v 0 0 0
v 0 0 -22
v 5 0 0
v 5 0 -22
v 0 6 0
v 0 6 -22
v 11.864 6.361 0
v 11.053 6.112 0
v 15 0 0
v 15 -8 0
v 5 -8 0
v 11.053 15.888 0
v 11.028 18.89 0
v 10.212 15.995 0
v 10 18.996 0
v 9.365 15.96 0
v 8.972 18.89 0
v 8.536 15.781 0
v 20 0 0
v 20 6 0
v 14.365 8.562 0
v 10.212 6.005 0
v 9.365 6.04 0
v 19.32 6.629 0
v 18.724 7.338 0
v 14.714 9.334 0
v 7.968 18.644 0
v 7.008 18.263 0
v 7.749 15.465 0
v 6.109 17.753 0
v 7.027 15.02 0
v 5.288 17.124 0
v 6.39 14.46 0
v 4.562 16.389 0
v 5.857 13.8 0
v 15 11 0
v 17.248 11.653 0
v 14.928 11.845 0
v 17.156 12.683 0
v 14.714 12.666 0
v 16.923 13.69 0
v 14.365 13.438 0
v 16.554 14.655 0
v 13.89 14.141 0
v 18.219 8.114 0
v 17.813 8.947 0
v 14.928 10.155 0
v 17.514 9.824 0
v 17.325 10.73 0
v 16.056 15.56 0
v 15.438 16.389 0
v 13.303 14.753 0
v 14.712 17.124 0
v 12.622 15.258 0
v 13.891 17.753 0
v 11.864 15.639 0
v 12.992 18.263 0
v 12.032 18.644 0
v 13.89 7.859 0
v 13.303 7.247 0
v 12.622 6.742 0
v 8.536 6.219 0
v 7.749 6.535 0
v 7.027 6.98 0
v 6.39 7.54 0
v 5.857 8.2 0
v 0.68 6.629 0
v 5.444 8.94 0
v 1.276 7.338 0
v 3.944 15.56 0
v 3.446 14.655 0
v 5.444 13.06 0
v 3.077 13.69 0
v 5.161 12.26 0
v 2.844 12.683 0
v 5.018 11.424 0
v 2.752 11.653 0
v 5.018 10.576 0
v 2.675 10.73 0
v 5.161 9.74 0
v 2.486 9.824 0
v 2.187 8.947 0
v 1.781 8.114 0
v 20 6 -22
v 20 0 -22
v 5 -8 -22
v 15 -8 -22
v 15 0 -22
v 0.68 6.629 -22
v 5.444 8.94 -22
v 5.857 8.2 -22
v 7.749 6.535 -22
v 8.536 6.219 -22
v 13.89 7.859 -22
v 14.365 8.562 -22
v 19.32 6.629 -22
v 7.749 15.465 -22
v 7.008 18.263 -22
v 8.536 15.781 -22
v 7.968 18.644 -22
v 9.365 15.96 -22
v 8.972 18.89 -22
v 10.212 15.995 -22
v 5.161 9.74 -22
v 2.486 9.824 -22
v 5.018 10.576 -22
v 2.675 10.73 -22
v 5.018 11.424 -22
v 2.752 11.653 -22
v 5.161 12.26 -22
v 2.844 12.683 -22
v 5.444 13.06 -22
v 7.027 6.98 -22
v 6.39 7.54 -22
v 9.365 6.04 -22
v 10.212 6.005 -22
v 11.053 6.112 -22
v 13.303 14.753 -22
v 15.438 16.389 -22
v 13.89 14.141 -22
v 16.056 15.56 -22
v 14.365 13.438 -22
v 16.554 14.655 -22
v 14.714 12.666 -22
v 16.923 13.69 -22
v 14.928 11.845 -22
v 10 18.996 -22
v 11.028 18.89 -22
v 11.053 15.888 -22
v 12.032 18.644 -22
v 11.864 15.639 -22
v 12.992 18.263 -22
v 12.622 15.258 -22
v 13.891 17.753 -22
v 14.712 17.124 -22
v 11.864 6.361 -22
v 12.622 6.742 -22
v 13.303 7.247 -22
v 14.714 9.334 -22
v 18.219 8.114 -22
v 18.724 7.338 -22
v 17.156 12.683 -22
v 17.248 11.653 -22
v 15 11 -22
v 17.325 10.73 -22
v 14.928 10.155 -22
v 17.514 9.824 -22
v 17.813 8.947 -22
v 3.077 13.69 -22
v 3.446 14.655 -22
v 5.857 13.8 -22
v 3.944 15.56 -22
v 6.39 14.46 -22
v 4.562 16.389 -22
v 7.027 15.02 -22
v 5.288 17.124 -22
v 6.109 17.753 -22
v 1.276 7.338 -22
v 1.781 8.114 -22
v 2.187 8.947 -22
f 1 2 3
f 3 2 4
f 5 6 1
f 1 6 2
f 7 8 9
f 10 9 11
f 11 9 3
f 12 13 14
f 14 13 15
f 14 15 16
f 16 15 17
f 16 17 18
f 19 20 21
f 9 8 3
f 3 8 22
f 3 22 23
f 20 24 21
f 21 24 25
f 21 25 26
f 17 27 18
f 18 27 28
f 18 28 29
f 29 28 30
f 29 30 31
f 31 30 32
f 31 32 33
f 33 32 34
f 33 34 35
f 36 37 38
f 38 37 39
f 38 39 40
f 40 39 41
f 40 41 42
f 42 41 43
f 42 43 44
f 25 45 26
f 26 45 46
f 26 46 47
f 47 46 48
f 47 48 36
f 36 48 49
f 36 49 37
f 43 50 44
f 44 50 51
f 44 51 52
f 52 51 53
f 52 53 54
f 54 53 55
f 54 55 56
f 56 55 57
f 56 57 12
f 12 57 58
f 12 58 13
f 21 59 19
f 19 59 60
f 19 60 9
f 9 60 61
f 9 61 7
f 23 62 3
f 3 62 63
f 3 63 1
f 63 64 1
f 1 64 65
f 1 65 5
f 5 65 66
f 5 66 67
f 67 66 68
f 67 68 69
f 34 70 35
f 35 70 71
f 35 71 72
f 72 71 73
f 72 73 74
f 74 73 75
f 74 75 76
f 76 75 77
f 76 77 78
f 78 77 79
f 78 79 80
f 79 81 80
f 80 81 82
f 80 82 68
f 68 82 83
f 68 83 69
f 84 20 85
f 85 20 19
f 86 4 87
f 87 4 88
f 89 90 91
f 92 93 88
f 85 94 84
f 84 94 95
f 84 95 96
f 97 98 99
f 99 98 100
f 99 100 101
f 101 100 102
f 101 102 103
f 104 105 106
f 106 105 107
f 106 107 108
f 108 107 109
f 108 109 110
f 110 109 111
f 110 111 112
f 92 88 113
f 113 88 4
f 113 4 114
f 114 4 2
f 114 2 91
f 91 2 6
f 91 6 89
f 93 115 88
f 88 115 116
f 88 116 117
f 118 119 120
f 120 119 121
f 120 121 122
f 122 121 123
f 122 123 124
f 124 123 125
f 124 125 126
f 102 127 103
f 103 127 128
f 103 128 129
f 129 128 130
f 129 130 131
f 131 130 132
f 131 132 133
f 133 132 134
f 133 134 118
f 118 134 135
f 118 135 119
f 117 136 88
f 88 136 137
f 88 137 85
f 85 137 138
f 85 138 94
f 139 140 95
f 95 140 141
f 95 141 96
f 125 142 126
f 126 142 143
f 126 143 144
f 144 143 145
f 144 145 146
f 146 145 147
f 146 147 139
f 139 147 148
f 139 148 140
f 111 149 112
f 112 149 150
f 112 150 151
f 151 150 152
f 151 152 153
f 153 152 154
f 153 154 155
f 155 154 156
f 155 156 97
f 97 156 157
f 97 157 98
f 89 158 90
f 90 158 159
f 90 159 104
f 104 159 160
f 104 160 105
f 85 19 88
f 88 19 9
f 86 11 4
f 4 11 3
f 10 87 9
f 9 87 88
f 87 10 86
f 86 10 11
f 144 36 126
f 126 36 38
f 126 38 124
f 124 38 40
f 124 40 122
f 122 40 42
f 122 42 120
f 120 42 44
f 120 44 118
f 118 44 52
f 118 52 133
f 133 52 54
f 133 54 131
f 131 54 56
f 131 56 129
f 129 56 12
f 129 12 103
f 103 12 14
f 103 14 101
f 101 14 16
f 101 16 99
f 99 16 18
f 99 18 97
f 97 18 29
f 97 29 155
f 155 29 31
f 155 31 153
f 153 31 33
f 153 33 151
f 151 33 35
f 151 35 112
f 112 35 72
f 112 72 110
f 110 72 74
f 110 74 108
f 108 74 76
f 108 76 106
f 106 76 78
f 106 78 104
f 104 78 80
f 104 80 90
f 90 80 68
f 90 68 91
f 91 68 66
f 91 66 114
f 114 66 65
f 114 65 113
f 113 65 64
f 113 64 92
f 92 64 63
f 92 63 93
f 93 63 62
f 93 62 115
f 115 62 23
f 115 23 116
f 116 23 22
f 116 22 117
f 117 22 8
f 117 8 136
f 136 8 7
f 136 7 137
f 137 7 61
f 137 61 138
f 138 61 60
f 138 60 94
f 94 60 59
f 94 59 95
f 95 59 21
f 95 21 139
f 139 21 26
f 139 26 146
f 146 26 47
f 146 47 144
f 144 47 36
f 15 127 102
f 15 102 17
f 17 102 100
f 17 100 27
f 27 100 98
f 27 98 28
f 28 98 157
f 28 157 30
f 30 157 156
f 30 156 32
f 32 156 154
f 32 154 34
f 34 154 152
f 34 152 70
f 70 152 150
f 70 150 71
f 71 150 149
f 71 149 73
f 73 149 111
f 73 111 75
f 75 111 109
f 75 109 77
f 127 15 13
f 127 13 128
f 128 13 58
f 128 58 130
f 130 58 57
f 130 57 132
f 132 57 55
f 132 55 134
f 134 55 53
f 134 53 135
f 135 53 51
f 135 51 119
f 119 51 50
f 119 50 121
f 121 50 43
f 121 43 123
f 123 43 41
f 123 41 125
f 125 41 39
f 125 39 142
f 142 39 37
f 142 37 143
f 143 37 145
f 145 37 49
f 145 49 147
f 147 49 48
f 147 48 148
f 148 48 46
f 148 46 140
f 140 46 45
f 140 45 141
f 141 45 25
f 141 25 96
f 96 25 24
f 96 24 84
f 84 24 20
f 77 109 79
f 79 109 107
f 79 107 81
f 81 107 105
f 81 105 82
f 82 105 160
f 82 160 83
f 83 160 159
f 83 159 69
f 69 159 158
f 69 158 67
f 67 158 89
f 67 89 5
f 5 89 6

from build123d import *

# Parameters (mm, degrees)
SKETCH6_W           = 20
SKETCH6_H           = 22
BOSS_EXTRUDE5_DEPTH = 6
SKETCH7_W           = 10
SKETCH7_H           = 22
BOSS_EXTRUDE6_DEPTH = 8
SKETCH8_W           = 14.5
SKETCH8_H           = 22
BOSS_EXTRUDE7_DEPTH = 13
SKETCH9_R           = 5
CUT_EXTRUDE1_DEPTH  = 36.284557529
FILLET1_R           = 7.5
FILLET2_R           = 7.5


with BuildPart() as part:
    # Sketch6 → Boss-Extrude5 (new body)
    with BuildSketch(Plane(origin=(0, 0, 0), x_dir=(1, 0, 0), z_dir=(0, 1, 0))):
        with Locations((10, 11)):
            Rectangle(SKETCH6_W, SKETCH6_H)
    extrude(amount=BOSS_EXTRUDE5_DEPTH)

    # Sketch7 → Boss-Extrude6 (add)
    with BuildSketch(Plane.XZ):
        with Locations((10, -11)):
            Rectangle(SKETCH7_W, SKETCH7_H)
    extrude(amount=BOSS_EXTRUDE6_DEPTH)

    # Sketch8 → Boss-Extrude7 (add)
    with BuildSketch(Plane(origin=(0, 6, 0), x_dir=(1, 0, 0), z_dir=(0, 1, 0))):
        with Locations((10, 11)):
            Rectangle(SKETCH8_W, SKETCH8_H)
    extrude(amount=BOSS_EXTRUDE7_DEPTH)

    # Sketch9 → Cut-Extrude1 (cut, through all)
    with BuildSketch(Plane.XY):
        with Locations((10, 11)):
            Circle(SKETCH9_R)
    extrude(amount=-CUT_EXTRUDE1_DEPTH, mode=Mode.SUBTRACT)

    # Fillet1
    # the kernel refuses this fillet: 7.5 mm, written as the material it takes off along each edge
    with BuildSketch(Plane(origin=(17.25, 19, -40.75), x_dir=(-1, 0, 0), z_dir=(0, 0, 1))) as fillet1_piece_1:
        with BuildLine():
            CenterArc((FILLET1_R, FILLET1_R), FILLET1_R, 180, 90)
            Line((0, FILLET1_R), (0, 0))
            Line((0, 0), (FILLET1_R, 0))
        make_face()
    extrude(amount=59.5, mode=Mode.SUBTRACT)
    with BuildSketch(Plane(origin=(2.75, 19, 18.75), x_dir=(0, -1, 0), z_dir=(0, 0, -1))) as fillet1_piece_2:
        with BuildLine():
            CenterArc((FILLET1_R, -FILLET1_R), FILLET1_R, 90, 90)
            Line((0, -FILLET1_R), (0, 0))
            Line((0, 0), (FILLET1_R, 0))
        make_face()
    extrude(amount=59.5, mode=Mode.SUBTRACT)

    # Fillet2
    # the kernel refuses this fillet: 7.5 mm, written as the material it adds along each edge
    with BuildSketch(Plane(origin=(17.25, 6, -22), x_dir=(1, 0, 0), z_dir=(0, 0, 1))) as fillet2_piece_1:
        with BuildLine():
            CenterArc((7.496865043, 5.806657581), FILLET2_R, 181.171427285, 49.563032728)
            Line((-0.001567478, 5.65332879), (-0.75141073, 5.637995911))
            ThreePointArc((-0.75141073, 5.637995911), (-0.75, 5.5), (-0.75, 0))
            Line((-0.75, 0), (0, -0.75))
            ThreePointArc((0, -0.75), (1.375, -0.75), (2.275313496, -0.580665758))
            Line((2.275313496, -0.580665758), (2.75, 0))
        make_face()
    extrude(amount=22)
    with BuildSketch(Plane(origin=(2.75, 6, 0), x_dir=(0.00027726642617420565, 0.9999999615616638, 0), z_dir=(0, 0, -1))) as fillet2_piece_2:
        with BuildLine():
            CenterArc((5.804578729, -7.498474746), FILLET2_R, 91.155541089, 49.563032728)
            Line((-0.000762483, -2.749999894), (-0.581296604, -2.275152409))
            ThreePointArc((-0.581296604, -2.275152409), (-0.750381213, -1.374791997), (-0.749999971, 0.00020795))
            Line((-0.749999971, 0.00020795), (0.00020795, 0.749999971))
            ThreePointArc((0.00020795, 0.749999971), (5.500207738, 0.748475006), (5.638204036, 0.749847475))
            Line((5.638204036, 0.749847475), (5.653329008, 0))
        make_face()
    extrude(amount=22)


solid = part.part
